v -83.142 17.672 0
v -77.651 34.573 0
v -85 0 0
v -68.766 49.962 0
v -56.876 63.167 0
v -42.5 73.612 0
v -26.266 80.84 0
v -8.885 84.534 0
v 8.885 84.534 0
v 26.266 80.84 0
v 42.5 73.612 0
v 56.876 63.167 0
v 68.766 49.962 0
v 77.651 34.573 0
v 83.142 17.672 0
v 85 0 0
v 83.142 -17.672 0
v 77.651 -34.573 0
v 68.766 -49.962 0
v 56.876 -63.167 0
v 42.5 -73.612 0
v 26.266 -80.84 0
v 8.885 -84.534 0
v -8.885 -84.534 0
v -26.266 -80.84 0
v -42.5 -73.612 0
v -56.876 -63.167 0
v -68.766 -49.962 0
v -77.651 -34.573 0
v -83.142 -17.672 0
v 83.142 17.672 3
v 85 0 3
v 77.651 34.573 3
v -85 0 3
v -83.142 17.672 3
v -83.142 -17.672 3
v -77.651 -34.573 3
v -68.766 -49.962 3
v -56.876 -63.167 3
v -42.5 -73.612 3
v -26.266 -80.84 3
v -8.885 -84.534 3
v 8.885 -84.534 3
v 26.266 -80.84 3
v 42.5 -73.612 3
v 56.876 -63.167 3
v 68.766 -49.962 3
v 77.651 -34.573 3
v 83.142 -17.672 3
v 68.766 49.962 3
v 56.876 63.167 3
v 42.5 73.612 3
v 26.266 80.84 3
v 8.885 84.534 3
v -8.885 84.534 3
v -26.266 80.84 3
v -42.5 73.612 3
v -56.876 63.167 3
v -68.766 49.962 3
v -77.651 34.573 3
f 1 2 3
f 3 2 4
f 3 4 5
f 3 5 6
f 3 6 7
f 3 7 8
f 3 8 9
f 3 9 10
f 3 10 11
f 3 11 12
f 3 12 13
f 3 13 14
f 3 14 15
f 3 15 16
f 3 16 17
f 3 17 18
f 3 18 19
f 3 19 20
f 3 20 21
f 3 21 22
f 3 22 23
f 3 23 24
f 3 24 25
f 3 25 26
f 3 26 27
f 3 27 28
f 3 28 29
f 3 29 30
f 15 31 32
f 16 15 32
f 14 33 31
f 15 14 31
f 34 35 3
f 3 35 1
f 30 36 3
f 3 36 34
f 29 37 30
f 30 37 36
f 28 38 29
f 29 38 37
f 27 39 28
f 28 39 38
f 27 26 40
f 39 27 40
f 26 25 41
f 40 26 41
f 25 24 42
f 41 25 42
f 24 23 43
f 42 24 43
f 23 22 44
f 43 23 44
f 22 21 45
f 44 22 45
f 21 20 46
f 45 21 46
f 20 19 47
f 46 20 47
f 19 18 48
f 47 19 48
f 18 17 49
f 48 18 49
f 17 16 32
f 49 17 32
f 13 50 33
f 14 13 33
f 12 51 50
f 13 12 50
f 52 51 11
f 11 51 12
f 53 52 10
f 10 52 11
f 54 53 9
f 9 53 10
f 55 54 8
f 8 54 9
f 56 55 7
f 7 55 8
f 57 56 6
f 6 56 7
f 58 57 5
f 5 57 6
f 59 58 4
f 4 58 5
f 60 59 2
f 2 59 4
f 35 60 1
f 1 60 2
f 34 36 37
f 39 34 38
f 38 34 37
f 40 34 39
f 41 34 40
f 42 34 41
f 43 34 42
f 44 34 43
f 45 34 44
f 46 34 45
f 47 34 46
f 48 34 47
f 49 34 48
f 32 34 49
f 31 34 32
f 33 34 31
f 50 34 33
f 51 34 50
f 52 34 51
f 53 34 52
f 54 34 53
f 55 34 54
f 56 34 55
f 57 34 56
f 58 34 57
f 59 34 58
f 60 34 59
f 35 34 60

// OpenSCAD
module bed_plate(l, r) {
    render() cylinder(r=170/2, h=3);
}

bed_plate(300, 4);
